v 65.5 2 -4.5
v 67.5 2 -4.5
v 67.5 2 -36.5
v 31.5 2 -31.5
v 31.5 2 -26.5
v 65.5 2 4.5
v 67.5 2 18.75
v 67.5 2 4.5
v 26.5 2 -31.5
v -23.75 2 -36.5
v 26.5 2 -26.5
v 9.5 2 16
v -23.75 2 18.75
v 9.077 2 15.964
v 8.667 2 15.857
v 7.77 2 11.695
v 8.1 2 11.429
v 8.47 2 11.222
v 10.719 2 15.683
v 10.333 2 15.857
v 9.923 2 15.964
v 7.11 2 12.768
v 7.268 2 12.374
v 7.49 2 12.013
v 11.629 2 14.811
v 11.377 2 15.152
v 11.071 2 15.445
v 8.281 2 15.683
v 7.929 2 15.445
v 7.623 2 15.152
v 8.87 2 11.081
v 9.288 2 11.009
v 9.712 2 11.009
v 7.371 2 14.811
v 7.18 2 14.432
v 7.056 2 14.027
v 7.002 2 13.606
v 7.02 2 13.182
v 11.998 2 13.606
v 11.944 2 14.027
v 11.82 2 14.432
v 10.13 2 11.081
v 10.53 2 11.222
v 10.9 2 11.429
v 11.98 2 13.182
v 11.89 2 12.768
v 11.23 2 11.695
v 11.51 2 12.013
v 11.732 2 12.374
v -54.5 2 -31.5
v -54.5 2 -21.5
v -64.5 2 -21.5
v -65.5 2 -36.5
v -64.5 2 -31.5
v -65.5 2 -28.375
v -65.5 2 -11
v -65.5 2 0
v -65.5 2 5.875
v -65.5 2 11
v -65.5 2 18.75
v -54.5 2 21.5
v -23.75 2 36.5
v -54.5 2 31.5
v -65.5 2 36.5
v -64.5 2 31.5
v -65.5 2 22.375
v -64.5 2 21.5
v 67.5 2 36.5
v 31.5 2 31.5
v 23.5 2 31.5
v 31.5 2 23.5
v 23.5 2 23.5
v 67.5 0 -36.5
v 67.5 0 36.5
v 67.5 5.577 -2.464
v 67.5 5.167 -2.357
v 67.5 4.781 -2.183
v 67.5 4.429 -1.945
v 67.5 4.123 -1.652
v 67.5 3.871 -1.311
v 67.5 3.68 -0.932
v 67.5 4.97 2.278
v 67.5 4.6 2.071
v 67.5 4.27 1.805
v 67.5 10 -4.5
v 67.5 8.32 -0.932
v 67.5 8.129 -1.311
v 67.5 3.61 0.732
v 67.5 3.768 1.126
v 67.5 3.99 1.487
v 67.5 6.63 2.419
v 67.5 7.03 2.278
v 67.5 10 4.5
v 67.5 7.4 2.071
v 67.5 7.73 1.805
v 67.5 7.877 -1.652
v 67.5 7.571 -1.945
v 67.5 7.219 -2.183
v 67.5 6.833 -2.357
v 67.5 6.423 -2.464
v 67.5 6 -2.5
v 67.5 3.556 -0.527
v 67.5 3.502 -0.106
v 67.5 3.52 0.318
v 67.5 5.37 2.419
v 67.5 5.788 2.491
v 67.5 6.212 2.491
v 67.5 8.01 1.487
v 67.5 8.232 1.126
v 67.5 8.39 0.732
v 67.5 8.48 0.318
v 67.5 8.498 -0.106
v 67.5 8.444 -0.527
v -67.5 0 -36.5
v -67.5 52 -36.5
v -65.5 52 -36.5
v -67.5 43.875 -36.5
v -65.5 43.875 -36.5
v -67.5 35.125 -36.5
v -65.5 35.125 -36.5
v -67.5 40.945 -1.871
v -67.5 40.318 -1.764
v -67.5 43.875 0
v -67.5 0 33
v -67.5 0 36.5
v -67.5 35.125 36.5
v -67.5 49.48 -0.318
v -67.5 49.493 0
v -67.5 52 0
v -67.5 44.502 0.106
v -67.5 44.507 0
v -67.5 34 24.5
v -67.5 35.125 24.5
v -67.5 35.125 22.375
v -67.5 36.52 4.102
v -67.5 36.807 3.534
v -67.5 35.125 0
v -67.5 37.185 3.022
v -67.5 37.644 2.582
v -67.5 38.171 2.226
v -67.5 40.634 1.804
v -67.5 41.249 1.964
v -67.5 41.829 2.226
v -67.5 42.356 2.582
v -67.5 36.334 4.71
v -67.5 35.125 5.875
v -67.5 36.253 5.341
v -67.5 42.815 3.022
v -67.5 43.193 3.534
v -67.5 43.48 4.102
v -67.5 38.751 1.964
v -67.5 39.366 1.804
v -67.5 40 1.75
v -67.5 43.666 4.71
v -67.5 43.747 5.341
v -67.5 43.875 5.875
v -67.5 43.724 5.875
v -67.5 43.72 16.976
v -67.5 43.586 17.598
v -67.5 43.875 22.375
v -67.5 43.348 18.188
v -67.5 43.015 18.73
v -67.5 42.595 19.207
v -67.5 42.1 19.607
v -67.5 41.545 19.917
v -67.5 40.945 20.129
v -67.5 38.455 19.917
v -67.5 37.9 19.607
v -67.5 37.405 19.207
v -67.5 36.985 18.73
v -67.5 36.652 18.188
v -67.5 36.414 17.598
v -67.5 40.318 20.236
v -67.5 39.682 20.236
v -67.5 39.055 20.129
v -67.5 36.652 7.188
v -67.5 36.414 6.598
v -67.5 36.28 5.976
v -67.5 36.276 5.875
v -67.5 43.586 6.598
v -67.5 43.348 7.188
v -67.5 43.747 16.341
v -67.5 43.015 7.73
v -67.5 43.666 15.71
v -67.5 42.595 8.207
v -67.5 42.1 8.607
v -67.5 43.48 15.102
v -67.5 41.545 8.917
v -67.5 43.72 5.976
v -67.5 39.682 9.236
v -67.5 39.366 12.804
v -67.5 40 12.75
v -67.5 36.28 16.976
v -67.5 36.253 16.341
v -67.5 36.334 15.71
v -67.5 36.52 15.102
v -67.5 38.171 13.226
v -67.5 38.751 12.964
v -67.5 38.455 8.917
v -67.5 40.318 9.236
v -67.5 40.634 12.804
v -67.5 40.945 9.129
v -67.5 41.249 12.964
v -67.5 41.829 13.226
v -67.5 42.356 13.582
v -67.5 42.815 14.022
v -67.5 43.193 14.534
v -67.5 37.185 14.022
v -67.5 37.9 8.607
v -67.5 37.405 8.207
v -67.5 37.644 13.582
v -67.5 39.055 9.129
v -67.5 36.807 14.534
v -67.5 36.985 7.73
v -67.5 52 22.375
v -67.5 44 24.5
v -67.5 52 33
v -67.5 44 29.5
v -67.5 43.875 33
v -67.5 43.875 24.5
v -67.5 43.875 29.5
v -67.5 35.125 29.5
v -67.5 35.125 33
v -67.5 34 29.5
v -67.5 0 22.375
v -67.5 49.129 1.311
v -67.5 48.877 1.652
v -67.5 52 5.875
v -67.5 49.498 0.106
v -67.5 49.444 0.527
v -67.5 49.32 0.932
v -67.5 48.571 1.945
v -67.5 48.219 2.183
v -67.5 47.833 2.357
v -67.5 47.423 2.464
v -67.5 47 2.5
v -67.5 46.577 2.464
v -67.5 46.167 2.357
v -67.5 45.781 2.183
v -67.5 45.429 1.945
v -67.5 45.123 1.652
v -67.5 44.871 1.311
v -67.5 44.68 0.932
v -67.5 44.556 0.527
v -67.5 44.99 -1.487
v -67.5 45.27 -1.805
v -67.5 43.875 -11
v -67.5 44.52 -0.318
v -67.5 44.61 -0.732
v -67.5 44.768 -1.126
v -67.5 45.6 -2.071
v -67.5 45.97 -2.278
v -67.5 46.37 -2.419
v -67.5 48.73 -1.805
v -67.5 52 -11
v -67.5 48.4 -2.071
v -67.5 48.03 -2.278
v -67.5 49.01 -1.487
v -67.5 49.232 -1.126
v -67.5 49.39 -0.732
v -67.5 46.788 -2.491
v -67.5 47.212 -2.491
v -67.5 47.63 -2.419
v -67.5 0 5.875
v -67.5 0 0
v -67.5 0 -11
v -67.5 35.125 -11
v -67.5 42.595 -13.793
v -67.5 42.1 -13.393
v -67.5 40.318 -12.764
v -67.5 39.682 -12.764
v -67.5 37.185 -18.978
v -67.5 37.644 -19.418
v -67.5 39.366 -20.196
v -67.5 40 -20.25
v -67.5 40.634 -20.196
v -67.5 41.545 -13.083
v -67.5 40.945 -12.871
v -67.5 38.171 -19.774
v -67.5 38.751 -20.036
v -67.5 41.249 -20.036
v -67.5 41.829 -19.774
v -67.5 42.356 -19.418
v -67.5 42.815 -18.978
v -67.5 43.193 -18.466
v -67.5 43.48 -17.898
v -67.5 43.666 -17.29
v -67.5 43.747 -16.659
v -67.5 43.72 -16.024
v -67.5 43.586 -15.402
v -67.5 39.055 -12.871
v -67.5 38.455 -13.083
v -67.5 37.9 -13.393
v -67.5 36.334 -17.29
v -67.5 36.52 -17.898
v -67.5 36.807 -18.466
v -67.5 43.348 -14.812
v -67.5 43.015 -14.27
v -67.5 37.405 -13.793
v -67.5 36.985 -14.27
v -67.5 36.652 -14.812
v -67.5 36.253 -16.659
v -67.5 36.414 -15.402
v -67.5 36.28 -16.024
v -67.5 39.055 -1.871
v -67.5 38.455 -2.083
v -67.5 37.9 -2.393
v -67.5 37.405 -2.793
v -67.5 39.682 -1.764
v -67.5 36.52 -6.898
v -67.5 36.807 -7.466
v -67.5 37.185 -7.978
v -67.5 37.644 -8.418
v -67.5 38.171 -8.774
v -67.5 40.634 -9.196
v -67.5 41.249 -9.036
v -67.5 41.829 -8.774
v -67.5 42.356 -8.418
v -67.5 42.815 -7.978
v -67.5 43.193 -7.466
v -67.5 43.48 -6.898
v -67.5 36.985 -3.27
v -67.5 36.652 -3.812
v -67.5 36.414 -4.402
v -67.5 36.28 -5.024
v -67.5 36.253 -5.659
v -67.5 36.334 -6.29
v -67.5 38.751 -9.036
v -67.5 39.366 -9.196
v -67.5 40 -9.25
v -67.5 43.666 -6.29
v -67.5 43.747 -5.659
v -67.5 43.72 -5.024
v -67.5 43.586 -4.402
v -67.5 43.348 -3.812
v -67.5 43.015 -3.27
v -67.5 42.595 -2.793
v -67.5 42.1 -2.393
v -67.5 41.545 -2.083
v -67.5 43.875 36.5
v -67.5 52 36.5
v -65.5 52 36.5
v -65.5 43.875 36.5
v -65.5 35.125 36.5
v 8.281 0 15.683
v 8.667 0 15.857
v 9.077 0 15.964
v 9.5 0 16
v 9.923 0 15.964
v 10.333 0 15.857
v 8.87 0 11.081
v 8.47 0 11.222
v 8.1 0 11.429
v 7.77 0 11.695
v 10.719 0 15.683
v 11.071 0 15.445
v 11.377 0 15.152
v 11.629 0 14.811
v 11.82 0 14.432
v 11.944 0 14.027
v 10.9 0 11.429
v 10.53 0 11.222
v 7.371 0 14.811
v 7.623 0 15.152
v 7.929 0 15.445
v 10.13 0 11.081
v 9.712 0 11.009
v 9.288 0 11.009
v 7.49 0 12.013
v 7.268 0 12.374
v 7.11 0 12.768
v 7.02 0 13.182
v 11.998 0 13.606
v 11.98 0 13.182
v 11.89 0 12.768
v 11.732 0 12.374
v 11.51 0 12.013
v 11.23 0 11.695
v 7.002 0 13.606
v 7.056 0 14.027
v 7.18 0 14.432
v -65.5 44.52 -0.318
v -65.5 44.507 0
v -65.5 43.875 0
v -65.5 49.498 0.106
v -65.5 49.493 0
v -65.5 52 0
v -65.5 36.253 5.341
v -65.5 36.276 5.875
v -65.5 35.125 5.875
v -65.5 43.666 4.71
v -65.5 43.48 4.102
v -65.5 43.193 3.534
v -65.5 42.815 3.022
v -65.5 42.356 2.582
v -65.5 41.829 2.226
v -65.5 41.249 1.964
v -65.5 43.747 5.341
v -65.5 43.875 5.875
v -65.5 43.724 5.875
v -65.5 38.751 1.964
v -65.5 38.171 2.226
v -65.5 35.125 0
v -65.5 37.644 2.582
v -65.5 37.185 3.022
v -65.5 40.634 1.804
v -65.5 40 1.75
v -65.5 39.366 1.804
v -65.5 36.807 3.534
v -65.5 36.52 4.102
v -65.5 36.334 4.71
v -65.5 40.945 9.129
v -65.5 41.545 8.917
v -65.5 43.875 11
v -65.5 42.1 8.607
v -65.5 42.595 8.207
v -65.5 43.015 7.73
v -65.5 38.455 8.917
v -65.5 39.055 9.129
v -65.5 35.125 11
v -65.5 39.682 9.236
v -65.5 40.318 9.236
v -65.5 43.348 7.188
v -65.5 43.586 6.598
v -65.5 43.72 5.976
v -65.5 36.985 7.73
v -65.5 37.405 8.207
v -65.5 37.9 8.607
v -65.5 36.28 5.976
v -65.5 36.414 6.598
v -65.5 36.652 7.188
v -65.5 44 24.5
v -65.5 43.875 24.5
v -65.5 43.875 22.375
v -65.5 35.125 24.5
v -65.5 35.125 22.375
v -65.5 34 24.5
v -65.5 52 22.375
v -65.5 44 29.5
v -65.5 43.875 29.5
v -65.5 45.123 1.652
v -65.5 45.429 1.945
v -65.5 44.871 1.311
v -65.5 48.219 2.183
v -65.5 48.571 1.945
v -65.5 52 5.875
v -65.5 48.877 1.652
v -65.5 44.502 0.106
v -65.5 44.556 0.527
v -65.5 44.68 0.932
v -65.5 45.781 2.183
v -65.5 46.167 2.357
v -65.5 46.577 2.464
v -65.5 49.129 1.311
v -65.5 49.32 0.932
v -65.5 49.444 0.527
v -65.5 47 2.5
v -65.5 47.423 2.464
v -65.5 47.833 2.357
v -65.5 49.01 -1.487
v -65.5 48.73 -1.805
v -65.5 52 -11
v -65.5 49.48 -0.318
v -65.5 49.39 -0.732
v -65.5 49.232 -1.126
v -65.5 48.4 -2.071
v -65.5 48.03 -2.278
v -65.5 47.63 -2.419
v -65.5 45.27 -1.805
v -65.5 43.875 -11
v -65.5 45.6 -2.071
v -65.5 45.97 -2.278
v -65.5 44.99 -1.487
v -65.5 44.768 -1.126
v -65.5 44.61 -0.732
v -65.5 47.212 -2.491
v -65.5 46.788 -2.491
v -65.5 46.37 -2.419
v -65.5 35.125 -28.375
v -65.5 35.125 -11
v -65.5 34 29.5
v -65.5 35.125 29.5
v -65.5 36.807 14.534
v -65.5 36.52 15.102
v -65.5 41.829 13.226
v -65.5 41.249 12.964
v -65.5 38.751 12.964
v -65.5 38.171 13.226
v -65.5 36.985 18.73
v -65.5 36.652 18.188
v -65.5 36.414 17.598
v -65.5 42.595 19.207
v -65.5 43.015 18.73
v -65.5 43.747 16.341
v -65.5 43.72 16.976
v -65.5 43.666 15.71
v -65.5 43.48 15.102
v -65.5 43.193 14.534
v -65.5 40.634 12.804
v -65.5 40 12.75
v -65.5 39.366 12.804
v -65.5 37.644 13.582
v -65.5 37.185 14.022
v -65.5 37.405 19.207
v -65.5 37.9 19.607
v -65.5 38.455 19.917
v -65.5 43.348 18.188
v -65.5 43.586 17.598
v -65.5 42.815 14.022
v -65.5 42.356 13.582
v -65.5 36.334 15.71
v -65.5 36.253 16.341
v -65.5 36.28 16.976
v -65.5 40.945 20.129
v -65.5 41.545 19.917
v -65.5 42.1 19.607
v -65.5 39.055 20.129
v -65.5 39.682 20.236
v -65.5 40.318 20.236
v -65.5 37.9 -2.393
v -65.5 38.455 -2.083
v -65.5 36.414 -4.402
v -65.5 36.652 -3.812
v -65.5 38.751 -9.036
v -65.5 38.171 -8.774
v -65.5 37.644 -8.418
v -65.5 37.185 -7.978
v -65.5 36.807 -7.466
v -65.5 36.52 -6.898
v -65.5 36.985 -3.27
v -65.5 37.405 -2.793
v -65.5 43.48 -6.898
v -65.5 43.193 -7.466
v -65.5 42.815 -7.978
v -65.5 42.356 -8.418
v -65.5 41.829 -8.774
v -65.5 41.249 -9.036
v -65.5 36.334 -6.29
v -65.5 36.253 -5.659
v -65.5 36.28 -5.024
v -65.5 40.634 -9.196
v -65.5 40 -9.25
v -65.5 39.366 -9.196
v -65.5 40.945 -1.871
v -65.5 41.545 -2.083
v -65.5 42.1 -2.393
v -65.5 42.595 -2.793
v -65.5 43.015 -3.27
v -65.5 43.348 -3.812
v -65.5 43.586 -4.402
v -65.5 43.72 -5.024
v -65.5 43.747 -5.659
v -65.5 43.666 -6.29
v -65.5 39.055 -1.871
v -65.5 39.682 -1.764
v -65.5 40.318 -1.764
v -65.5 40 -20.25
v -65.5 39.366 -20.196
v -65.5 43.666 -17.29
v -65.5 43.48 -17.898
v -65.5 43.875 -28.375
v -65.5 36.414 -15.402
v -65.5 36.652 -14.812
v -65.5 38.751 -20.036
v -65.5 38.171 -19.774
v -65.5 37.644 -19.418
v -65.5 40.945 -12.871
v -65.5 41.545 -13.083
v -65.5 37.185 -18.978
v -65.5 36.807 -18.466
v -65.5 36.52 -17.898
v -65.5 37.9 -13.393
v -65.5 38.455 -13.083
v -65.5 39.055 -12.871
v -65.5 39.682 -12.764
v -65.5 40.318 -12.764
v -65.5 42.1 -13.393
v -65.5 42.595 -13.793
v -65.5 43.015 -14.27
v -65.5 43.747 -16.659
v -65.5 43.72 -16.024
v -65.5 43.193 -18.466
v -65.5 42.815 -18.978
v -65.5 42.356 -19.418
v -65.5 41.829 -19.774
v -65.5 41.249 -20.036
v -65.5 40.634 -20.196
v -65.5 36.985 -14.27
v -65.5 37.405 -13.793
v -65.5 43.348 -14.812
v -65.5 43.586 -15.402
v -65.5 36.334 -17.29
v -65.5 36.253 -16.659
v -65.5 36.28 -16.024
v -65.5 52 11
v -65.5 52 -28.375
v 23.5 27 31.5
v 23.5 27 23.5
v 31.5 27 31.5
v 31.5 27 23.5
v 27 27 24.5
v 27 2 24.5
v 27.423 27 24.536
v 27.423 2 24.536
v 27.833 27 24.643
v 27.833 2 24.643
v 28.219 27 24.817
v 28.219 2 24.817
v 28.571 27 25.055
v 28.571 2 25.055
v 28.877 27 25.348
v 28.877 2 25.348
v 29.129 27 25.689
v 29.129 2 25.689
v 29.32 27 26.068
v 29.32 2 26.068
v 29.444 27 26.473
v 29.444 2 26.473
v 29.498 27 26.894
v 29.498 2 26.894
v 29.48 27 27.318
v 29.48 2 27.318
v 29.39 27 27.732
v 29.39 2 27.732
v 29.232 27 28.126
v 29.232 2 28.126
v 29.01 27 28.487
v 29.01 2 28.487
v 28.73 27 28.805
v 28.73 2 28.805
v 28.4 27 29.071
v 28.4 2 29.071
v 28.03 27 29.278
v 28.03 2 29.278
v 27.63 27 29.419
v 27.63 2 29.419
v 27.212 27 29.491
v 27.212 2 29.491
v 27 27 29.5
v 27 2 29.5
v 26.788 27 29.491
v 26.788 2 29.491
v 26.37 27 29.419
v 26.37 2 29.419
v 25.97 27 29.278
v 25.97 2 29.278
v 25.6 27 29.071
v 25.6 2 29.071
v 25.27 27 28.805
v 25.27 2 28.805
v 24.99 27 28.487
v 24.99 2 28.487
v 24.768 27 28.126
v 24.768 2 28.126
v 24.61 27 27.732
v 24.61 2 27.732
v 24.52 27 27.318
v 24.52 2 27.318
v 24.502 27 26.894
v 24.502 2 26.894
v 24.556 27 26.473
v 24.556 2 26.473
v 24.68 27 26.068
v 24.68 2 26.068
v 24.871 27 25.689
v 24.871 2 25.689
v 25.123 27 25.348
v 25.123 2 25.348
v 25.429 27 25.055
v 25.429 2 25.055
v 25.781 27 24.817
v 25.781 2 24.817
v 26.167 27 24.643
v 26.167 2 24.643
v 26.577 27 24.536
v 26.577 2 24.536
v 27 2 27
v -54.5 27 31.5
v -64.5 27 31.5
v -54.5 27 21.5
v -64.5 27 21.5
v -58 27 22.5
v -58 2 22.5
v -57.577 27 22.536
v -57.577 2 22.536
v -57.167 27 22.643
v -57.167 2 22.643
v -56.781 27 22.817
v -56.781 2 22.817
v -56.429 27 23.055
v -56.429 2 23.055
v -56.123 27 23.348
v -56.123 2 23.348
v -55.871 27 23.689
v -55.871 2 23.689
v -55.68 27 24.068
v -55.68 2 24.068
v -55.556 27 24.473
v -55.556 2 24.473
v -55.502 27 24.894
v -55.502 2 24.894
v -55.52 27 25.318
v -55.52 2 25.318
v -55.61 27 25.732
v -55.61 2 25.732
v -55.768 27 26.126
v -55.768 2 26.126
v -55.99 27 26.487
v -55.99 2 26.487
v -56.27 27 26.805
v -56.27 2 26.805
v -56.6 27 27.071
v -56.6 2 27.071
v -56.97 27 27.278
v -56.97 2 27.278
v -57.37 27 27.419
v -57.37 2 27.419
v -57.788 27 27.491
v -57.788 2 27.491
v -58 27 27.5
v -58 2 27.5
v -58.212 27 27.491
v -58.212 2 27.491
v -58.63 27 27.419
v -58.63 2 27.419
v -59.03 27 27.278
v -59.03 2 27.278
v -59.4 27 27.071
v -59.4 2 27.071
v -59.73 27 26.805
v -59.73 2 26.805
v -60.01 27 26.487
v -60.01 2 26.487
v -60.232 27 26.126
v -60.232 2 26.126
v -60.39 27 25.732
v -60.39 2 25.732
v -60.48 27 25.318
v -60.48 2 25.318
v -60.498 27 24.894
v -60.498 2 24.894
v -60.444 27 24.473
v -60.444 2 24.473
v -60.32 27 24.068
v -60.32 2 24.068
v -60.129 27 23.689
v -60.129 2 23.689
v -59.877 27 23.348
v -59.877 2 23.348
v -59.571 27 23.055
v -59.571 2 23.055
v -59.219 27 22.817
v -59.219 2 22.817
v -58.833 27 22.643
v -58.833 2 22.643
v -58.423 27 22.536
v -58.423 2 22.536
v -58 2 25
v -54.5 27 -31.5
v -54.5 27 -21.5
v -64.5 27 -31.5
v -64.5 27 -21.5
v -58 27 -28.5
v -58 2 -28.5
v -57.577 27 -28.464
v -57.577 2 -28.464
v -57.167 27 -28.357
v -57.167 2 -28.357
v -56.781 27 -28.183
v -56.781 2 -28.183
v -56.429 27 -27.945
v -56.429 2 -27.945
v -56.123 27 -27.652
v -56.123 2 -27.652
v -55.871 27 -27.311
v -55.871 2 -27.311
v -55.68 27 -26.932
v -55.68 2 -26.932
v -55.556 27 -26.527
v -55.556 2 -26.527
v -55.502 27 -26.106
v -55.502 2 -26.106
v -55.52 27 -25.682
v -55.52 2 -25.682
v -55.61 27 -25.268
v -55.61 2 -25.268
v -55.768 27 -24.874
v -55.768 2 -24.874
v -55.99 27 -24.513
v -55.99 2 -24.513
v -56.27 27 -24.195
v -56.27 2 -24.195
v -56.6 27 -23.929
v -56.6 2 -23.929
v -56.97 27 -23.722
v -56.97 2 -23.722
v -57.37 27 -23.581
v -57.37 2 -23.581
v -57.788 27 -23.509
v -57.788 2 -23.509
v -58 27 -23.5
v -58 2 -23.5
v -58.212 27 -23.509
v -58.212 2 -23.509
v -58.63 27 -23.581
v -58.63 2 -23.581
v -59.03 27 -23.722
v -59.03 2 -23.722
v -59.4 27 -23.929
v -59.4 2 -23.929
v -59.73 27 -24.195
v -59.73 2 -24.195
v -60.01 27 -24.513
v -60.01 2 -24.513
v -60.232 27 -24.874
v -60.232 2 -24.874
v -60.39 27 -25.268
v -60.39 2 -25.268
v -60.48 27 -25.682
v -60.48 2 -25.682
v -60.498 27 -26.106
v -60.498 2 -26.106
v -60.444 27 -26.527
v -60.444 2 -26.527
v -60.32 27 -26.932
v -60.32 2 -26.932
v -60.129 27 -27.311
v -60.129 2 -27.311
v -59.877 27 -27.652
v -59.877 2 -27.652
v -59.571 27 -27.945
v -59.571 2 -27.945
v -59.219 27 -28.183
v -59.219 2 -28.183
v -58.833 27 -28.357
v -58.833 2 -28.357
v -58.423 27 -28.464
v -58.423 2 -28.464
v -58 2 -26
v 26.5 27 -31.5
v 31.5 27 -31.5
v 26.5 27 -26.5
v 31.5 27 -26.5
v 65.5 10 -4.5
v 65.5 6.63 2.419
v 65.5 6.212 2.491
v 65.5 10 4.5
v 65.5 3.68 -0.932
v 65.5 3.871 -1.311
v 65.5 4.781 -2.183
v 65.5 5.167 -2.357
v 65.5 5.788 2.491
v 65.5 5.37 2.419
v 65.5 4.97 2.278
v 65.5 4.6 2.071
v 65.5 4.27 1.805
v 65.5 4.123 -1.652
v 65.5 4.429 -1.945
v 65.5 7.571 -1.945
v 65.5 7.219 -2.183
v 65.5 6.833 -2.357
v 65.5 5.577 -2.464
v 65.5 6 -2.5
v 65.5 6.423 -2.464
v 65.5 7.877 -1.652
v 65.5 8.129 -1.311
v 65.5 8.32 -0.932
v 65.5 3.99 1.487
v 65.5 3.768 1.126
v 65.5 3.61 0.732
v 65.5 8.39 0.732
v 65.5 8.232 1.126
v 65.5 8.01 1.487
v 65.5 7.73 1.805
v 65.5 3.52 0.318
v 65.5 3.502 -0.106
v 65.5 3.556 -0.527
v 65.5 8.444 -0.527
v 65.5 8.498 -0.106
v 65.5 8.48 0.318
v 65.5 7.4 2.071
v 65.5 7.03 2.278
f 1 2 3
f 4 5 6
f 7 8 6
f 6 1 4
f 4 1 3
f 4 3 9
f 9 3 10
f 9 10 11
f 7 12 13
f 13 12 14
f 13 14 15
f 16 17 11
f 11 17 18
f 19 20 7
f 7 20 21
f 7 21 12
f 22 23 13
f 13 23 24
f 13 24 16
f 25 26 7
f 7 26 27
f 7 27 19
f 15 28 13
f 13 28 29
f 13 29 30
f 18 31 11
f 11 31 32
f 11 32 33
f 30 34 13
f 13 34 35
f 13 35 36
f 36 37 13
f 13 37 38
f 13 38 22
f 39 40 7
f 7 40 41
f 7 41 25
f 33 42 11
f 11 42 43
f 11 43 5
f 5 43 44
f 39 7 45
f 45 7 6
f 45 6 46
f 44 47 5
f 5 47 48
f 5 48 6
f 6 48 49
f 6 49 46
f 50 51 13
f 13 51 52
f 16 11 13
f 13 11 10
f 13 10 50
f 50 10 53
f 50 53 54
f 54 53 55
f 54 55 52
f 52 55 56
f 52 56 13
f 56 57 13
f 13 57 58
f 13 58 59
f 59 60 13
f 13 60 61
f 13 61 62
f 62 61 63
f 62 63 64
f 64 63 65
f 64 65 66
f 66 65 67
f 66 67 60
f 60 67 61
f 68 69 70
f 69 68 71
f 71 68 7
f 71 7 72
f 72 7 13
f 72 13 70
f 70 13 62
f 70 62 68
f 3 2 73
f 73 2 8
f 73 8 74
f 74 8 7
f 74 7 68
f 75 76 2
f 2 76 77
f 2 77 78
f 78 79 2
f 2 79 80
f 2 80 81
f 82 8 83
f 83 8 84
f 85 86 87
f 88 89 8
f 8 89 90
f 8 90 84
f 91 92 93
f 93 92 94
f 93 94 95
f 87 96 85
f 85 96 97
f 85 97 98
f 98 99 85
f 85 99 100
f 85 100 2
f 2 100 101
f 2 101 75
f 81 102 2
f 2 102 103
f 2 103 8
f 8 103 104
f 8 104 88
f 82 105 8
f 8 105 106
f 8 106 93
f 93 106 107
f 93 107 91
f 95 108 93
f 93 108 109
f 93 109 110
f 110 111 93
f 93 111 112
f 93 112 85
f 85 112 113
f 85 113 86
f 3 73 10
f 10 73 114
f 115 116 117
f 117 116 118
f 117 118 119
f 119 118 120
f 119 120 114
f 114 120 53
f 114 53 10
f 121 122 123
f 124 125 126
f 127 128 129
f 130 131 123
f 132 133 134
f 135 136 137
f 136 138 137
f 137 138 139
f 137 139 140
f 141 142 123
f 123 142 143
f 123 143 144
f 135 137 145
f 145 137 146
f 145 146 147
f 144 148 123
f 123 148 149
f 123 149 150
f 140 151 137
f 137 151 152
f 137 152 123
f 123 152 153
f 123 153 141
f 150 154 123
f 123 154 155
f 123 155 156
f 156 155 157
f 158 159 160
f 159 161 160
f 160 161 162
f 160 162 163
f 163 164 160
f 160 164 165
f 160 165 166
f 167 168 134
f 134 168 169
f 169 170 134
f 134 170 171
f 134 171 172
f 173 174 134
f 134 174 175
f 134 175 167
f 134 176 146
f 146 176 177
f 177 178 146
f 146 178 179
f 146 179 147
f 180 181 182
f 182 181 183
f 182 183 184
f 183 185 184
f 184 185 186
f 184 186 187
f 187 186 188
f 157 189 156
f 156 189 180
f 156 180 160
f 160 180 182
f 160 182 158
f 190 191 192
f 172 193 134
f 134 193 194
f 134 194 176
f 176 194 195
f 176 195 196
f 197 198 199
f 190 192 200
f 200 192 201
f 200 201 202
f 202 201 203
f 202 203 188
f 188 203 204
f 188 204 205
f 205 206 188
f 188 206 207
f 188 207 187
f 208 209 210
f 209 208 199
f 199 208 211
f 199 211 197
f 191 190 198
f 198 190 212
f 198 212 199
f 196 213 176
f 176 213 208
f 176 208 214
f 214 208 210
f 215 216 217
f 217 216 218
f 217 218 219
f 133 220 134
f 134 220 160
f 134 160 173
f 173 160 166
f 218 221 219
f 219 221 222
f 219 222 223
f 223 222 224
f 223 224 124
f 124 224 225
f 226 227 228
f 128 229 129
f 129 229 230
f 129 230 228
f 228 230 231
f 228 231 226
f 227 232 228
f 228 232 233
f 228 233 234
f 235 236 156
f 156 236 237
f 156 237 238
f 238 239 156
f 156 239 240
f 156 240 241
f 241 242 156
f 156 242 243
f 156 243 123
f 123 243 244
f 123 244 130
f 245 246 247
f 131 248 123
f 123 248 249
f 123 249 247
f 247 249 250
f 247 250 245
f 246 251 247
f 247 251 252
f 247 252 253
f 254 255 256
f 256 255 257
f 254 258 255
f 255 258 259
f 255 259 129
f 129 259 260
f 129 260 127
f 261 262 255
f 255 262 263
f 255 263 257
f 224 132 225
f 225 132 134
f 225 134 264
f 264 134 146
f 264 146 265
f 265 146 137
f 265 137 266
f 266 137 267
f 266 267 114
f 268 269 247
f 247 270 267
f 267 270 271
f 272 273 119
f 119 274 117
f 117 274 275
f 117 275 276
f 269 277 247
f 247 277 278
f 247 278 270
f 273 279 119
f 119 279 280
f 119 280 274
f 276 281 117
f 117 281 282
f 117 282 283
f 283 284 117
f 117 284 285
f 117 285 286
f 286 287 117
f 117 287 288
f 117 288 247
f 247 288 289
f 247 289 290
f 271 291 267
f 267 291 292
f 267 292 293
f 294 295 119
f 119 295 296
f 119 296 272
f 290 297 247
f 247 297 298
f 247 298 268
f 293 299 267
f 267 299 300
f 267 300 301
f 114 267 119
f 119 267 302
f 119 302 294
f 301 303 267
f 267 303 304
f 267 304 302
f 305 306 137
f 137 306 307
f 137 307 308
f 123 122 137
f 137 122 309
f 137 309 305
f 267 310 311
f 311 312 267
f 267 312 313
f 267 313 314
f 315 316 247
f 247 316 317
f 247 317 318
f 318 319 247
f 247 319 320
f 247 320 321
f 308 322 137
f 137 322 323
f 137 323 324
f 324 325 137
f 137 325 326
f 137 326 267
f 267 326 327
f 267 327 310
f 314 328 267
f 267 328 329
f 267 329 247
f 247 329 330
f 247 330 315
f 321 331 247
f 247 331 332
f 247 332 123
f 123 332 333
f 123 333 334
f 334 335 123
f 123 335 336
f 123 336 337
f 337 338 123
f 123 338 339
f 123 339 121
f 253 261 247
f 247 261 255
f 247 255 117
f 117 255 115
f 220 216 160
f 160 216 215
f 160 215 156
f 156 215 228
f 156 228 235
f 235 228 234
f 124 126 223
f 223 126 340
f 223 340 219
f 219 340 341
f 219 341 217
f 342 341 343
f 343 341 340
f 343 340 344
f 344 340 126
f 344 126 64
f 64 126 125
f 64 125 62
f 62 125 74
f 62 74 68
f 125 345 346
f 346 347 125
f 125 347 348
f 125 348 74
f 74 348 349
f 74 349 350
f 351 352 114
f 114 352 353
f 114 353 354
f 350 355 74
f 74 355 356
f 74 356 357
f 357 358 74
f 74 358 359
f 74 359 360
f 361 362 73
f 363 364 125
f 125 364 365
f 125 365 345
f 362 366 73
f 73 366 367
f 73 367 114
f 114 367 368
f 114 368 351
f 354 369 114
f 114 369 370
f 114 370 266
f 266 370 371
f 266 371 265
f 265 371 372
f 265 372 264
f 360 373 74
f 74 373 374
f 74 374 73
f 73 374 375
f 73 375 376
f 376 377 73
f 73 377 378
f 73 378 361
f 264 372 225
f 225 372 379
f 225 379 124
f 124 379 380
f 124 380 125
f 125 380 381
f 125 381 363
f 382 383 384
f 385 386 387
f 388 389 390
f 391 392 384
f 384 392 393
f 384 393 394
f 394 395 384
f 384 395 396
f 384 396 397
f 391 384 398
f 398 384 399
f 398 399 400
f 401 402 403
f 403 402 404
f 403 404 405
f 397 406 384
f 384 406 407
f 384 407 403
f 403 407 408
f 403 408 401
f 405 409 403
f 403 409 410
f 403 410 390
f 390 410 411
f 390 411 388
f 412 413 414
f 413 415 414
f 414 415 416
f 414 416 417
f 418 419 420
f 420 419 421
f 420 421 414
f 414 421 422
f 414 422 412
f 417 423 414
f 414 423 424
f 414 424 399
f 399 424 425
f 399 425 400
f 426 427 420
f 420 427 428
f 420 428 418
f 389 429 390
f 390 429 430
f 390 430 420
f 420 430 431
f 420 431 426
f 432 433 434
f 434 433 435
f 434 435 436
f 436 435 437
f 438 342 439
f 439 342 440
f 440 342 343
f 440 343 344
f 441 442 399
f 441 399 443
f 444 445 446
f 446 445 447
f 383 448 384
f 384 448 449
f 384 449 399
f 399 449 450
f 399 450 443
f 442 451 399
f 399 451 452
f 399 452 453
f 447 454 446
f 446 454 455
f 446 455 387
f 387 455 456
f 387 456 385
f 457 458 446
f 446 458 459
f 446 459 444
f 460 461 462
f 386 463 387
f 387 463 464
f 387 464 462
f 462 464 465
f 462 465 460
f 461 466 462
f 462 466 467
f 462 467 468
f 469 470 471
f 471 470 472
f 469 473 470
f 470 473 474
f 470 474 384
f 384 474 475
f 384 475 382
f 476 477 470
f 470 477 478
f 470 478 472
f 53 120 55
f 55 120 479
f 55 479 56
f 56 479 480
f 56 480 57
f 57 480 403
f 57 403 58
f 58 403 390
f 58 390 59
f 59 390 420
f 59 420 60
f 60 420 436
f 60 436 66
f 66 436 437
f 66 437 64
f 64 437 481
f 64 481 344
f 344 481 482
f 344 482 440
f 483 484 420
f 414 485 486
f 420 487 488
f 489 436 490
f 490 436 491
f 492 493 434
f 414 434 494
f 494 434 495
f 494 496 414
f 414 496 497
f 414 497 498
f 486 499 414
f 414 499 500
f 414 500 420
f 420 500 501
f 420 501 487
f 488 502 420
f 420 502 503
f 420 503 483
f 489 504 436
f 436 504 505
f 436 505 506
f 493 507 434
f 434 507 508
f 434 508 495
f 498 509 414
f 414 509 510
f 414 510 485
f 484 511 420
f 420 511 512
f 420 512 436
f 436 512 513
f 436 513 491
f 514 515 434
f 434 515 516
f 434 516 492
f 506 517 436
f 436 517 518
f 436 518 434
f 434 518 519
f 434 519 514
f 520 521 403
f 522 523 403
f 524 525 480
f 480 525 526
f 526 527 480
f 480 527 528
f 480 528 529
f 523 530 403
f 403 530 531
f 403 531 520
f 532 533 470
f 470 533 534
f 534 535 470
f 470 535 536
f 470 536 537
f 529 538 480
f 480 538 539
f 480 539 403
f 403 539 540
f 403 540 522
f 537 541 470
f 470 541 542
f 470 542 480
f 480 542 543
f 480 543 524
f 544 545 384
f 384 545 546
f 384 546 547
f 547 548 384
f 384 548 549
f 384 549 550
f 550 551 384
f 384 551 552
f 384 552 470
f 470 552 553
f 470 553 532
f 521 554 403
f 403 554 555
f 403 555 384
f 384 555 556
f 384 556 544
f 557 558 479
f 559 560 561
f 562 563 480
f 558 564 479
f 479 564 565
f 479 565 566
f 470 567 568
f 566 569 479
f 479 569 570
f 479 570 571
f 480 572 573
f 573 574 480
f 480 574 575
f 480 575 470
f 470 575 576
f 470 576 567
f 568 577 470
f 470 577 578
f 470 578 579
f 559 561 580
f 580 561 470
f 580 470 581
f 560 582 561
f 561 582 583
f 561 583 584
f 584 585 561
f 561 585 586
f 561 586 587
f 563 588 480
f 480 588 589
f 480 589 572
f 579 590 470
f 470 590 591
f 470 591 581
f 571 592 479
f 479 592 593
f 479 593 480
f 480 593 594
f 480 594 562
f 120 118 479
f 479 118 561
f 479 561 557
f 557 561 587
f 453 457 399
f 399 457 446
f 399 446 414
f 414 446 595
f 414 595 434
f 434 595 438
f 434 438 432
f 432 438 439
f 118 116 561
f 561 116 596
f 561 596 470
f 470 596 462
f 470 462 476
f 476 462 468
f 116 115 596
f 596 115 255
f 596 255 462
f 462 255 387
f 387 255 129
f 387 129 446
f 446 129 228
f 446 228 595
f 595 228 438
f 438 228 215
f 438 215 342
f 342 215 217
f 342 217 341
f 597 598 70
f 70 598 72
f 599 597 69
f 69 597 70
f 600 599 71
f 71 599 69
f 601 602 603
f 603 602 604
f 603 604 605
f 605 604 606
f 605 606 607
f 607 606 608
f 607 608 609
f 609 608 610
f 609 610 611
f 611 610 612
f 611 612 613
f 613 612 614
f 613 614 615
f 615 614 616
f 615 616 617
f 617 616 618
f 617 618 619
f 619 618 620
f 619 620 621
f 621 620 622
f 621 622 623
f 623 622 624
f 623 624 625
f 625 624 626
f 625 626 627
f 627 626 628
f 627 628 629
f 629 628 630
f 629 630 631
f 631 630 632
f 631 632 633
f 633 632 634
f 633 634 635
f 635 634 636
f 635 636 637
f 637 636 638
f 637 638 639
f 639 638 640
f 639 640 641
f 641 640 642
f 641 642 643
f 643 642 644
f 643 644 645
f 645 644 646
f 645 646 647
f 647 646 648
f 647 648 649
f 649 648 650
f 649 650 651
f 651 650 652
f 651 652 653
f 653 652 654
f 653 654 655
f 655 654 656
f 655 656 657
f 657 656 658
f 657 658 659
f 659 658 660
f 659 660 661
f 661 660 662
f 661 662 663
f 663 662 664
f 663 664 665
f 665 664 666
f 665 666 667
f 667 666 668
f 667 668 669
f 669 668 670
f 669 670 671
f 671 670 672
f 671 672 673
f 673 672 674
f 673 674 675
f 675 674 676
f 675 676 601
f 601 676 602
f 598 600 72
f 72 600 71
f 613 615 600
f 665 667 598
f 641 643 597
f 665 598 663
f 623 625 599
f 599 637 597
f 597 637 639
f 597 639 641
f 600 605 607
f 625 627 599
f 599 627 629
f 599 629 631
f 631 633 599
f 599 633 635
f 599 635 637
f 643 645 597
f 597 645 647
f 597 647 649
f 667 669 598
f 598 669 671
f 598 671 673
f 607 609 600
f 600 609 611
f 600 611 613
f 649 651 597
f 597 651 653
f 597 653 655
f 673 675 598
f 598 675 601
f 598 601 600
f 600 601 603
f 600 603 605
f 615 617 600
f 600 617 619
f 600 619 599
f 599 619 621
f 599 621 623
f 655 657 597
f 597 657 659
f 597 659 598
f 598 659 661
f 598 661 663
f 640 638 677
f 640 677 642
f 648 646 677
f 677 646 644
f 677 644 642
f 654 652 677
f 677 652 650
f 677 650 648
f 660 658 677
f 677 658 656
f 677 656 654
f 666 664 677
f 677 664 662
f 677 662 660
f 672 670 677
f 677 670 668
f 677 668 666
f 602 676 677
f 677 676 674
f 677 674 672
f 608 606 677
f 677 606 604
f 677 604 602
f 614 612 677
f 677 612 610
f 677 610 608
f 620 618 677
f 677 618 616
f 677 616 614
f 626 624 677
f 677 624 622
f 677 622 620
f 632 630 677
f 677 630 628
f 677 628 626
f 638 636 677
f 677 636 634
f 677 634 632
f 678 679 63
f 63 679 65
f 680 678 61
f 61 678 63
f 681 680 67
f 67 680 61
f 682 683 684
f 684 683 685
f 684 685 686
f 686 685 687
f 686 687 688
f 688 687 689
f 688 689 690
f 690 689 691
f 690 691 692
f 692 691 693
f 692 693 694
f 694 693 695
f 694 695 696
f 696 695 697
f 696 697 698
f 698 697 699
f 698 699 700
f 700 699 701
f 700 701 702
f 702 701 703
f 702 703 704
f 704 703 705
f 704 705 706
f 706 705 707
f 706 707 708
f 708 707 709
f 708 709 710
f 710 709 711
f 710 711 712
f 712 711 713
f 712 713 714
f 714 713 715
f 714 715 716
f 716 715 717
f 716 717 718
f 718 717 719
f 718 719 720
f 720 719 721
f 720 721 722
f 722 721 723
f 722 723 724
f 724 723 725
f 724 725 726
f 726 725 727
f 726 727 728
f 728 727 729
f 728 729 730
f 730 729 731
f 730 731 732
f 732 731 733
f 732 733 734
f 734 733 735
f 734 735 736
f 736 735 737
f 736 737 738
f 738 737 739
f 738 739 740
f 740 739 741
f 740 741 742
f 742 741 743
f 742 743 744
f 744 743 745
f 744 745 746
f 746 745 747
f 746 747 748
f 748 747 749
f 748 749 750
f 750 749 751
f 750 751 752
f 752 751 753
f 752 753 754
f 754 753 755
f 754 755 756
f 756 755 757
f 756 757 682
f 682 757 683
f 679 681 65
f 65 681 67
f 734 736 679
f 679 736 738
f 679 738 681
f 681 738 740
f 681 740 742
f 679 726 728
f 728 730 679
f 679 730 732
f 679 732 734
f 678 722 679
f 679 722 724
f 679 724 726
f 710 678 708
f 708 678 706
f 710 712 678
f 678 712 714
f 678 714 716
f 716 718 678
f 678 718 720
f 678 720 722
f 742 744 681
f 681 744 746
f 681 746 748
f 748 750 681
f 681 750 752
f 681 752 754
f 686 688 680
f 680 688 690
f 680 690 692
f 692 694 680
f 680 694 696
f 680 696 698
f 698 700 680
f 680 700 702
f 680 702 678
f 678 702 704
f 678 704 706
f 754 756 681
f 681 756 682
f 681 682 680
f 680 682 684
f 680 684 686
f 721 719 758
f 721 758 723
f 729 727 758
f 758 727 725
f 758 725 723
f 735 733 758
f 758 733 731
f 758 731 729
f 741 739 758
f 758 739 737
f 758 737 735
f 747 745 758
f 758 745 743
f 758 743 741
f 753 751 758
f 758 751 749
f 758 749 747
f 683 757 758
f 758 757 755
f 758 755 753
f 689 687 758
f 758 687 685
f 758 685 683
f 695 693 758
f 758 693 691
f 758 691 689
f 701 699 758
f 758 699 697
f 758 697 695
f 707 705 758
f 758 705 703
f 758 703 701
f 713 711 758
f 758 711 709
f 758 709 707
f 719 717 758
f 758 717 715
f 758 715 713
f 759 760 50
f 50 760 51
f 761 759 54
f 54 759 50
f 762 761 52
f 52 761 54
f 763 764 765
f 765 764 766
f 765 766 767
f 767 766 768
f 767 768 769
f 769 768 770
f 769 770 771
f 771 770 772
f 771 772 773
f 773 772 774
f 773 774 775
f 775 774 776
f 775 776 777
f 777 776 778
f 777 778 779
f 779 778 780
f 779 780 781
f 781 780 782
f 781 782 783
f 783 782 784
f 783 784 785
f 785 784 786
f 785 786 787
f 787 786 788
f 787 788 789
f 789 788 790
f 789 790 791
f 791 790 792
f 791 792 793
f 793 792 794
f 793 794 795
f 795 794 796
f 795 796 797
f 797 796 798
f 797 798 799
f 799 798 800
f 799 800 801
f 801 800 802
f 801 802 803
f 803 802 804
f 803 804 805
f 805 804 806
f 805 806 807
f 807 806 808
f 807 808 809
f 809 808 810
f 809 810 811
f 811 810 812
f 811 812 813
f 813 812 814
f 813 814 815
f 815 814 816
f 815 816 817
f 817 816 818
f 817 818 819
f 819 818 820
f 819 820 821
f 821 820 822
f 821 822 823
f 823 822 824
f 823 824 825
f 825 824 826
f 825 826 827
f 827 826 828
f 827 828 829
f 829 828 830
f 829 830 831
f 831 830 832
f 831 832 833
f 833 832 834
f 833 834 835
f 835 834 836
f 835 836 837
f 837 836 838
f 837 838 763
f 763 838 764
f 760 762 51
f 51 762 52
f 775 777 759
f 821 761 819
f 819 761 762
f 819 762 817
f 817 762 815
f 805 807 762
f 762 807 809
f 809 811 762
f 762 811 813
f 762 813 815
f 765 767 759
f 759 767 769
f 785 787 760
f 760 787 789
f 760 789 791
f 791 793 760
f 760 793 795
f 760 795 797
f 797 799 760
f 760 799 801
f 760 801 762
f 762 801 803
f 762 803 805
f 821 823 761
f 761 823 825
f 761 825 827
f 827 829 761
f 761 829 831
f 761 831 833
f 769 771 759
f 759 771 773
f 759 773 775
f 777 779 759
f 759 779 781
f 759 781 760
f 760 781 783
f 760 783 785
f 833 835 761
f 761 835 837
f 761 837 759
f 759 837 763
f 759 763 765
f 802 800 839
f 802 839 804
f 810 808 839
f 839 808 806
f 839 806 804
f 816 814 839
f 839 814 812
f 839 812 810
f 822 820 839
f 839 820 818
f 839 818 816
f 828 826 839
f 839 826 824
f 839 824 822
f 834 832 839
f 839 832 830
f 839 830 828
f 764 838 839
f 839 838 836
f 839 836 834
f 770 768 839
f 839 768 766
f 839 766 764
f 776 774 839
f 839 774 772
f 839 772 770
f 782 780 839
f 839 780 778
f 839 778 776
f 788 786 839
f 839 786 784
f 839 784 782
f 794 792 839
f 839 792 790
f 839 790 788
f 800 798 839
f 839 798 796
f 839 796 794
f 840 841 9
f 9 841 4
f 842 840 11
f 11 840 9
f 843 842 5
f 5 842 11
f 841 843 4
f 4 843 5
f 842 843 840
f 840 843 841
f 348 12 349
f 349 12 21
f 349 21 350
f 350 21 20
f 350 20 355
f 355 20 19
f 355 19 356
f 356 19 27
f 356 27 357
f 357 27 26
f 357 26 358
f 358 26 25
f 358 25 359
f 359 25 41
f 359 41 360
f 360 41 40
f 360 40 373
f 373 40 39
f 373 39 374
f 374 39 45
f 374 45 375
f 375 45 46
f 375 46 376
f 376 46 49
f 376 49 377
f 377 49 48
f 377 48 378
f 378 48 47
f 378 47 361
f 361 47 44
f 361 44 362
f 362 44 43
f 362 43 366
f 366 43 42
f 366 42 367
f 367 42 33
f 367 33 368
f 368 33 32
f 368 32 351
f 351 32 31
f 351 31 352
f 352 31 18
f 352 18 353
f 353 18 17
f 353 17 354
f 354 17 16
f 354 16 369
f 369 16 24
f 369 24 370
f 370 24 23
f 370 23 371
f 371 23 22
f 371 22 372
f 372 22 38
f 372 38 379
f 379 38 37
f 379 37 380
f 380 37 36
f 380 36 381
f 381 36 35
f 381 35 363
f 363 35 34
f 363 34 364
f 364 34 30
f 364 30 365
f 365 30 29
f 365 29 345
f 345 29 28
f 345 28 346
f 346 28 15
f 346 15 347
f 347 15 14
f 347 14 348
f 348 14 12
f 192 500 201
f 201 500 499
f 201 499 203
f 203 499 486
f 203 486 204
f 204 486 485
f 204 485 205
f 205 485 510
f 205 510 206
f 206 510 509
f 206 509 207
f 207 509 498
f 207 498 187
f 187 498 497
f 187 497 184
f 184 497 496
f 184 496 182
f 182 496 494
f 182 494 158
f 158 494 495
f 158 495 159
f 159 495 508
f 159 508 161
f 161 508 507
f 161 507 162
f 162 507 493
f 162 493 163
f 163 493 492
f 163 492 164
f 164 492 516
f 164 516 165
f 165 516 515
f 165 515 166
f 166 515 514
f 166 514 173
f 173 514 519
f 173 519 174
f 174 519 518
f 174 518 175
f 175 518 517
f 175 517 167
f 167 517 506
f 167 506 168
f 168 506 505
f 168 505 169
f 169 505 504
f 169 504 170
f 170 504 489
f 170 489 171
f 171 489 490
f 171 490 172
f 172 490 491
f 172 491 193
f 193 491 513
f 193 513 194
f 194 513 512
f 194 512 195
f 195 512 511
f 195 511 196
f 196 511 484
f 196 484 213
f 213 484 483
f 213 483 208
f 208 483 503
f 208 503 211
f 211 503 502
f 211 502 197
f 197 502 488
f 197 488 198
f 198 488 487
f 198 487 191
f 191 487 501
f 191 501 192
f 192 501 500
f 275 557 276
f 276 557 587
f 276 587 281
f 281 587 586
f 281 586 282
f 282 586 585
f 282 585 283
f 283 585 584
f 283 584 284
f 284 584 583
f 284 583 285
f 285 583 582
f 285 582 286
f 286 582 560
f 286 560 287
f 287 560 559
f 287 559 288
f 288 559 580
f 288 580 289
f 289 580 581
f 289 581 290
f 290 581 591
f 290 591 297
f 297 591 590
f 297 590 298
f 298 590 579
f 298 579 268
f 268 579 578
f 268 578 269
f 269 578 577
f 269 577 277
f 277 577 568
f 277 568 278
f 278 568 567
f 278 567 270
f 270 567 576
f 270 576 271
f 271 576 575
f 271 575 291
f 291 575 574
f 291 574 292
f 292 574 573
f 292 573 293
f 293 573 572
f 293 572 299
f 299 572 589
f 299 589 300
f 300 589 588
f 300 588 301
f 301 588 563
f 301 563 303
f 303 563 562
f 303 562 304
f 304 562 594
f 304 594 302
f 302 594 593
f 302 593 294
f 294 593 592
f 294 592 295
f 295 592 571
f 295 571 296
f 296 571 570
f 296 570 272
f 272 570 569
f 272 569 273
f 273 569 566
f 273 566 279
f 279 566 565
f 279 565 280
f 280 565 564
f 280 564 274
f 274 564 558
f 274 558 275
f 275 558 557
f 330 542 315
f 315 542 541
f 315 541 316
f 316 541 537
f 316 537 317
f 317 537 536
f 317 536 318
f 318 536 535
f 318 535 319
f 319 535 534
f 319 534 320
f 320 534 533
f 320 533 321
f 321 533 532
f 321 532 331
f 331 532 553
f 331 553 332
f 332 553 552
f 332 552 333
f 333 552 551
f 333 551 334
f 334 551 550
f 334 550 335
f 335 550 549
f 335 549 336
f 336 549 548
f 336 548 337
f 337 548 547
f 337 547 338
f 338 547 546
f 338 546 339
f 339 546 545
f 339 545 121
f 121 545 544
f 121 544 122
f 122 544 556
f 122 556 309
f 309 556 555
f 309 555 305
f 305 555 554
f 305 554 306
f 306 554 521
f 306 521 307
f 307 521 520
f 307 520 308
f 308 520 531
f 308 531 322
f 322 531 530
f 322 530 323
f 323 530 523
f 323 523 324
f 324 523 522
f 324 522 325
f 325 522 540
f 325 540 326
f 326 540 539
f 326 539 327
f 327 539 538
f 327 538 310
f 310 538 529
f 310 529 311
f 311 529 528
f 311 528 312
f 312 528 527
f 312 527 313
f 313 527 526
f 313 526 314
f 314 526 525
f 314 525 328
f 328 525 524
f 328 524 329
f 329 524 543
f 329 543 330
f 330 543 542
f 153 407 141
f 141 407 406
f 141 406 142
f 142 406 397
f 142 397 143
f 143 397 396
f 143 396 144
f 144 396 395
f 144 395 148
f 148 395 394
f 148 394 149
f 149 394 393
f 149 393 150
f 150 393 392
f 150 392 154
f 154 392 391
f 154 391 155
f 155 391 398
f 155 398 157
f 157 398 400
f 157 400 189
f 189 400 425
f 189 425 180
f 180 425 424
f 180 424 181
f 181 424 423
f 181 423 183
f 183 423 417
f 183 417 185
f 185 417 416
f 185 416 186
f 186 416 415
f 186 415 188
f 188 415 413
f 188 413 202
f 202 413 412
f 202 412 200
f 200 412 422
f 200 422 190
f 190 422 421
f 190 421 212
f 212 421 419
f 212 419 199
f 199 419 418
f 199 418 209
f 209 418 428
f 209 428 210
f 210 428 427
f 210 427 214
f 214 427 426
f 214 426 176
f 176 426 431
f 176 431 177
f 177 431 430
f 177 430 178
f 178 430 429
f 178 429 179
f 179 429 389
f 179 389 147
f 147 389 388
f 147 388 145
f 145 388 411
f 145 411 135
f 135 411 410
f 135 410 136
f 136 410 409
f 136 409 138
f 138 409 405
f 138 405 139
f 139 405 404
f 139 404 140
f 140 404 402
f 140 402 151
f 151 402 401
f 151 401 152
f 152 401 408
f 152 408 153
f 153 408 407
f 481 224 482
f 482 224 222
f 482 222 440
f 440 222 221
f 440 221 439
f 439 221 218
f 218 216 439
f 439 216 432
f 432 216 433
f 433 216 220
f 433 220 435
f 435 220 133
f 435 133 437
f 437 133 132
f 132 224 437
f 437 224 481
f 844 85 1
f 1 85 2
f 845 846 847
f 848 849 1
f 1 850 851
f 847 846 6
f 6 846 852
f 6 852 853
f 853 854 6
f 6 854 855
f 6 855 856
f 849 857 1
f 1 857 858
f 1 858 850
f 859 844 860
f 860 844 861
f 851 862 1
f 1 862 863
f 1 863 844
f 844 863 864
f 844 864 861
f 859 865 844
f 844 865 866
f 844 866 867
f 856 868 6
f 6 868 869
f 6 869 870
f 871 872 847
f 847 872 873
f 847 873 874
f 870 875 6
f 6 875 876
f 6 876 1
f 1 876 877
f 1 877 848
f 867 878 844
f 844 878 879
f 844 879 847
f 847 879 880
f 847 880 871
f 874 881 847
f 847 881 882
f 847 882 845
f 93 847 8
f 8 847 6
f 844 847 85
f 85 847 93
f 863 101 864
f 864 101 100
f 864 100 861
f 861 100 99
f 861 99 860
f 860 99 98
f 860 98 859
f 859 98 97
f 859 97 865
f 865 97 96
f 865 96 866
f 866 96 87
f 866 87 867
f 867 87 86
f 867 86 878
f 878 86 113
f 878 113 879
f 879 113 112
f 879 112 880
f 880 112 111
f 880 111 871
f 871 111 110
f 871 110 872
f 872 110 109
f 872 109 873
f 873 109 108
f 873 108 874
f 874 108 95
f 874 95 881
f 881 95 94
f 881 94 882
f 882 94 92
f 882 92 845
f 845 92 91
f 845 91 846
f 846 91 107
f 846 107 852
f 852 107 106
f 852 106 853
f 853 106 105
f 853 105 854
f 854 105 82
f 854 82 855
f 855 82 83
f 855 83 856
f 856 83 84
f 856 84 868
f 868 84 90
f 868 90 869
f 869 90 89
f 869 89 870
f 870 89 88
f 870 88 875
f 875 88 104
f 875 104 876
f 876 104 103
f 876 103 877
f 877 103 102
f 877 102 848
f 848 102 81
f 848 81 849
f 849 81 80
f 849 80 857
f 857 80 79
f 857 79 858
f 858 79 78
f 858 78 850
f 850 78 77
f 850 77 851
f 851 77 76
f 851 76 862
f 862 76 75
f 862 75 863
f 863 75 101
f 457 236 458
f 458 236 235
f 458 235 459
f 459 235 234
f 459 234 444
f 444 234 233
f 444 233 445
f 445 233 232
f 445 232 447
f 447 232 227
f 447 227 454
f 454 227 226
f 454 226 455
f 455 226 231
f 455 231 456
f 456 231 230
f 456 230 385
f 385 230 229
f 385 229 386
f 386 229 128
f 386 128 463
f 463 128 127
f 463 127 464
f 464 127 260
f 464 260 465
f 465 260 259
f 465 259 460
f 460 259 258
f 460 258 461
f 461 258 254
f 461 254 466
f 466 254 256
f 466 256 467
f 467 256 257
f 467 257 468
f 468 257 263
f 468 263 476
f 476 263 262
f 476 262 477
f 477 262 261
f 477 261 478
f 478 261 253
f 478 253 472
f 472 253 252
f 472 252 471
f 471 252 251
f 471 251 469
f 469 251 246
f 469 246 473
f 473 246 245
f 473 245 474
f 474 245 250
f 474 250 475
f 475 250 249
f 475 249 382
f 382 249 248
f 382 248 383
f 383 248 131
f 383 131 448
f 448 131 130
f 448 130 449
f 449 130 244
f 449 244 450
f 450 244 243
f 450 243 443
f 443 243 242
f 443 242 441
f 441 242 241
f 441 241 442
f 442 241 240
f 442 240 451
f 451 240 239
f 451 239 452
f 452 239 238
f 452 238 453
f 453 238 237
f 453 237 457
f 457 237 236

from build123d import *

# Parameters (mm, degrees)
SKETCH1_W           = 135
SKETCH1_H           = 73
BOSS_EXTRUDE1_DEPTH = 2
SKETCH2_W           = 2
SKETCH2_H           = 73
BOSS_EXTRUDE2_DEPTH = 50
SKETCH4_W           = 8
SKETCH4_H           = 8
SKETCH4_R           = 2.5
SKETCH4_W_2         = 10
SKETCH4_H_2         = 10
SKETCH4_W_3         = 5
SKETCH4_H_3         = 5
BOSS_EXTRUDE4_DEPTH = 25
SKETCH5_R           = 2.5
CUT_EXTRUDE1_DEPTH  = 2
SKETCH6_R           = 3.75
CUT_EXTRUDE2_DEPTH  = 2
SKETCH7_W           = 5
SKETCH7_H           = 10
CUT_EXTRUDE3_DEPTH  = 2
SKETCH8_W           = 2
SKETCH8_H           = 9
BOSS_EXTRUDE5_DEPTH = 8
SKETCH9_R           = 2.5
CUT_EXTRUDE4_DEPTH  = 8
SKETCH10_R          = 2.5
CUT_EXTRUDE5_DEPTH  = 2


with BuildPart() as part:
    # Sketch1 → Boss-Extrude1 (new body)
    with BuildSketch(Plane(origin=(0, 0, 0), x_dir=(1, 0, 0), z_dir=(0, 1, 0))):
        Rectangle(SKETCH1_W, SKETCH1_H)
    extrude(amount=BOSS_EXTRUDE1_DEPTH)

    # Sketch2 → Boss-Extrude2 (add)
    with BuildSketch(Plane(origin=(0, 2, 0), x_dir=(1, 0, 0), z_dir=(0, 1, 0))):
        with Locations((-66.5, 0)):
            Rectangle(SKETCH2_W, SKETCH2_H)
    extrude(amount=BOSS_EXTRUDE2_DEPTH)

    # Sketch4 → Boss-Extrude4 (add)
    with BuildSketch(Plane(origin=(0, 2, 0), x_dir=(1, 0, 0), z_dir=(0, 1, 0))):
        with Locations((27.5, -27.5)):
            Rectangle(SKETCH4_W, SKETCH4_H)
        with Locations((27, -27)):
            Circle(SKETCH4_R, mode=Mode.SUBTRACT)
        with Locations((-59.5, -26.5)):
            Rectangle(SKETCH4_W_2, SKETCH4_H_2)
        with Locations((-58, -25)):
            Circle(SKETCH4_R, mode=Mode.SUBTRACT)
        with Locations((-59.5, 26.5)):
            Rectangle(SKETCH4_W_2, SKETCH4_H_2)
        with Locations((-58, 26)):
            Circle(SKETCH4_R, mode=Mode.SUBTRACT)
        with Locations((29, 29)):
            Rectangle(SKETCH4_W_3, SKETCH4_H_3)
    extrude(amount=BOSS_EXTRUDE4_DEPTH)

    # Sketch5 → Cut-Extrude1 (cut)
    with BuildSketch(Plane(origin=(0, 2, 0), x_dir=(1, 0, 0), z_dir=(0, 1, 0))):
        with Locations((9.5, -13.5)):
            Circle(SKETCH5_R)
    extrude(amount=-CUT_EXTRUDE1_DEPTH, mode=Mode.SUBTRACT)

    # Sketch6 → Cut-Extrude2 (cut)
    with BuildSketch(Plane(origin=(-65.5, 0, 0), x_dir=(0, 0, -1), z_dir=(1, 0, 0))):
        with Locations((-16.5, 40)):
            Circle(SKETCH6_R)
        with Locations((-5.5, 40)):
            Circle(SKETCH6_R)
        with Locations((5.5, 40)):
            Circle(SKETCH6_R)
        with Locations((16.5, 40)):
            Circle(SKETCH6_R)
    extrude(amount=-CUT_EXTRUDE2_DEPTH, mode=Mode.SUBTRACT)

    # Sketch7 → Cut-Extrude3 (cut)
    with BuildSketch(Plane(origin=(-65.5, 0, 0), x_dir=(0, 0, -1), z_dir=(1, 0, 0))):
        with Locations((-27, 39)):
            Rectangle(SKETCH7_W, SKETCH7_H)
    extrude(amount=-CUT_EXTRUDE3_DEPTH, mode=Mode.SUBTRACT)

    # Sketch8 → Boss-Extrude5 (add)
    with BuildSketch(Plane(origin=(0, 2, 0), x_dir=(1, 0, 0), z_dir=(0, 1, 0))):
        with Locations((66.5, 0)):
            Rectangle(SKETCH8_W, SKETCH8_H)
    extrude(amount=BOSS_EXTRUDE5_DEPTH)

    # Sketch9 → Cut-Extrude4 (cut)
    with BuildSketch(Plane(origin=(67.5, 0, 0), x_dir=(0, 0, -1), z_dir=(1, 0, 0))):
        with Locations((0, 6)):
            Circle(SKETCH9_R)
    extrude(amount=-CUT_EXTRUDE4_DEPTH, mode=Mode.SUBTRACT)

    # Sketch10 → Cut-Extrude5 (cut)
    with BuildSketch(Plane.ZY.offset(67.5)):
        with Locations((0, 47)):
            Circle(SKETCH10_R)
    extrude(amount=-CUT_EXTRUDE5_DEPTH, mode=Mode.SUBTRACT)


solid = part.part
